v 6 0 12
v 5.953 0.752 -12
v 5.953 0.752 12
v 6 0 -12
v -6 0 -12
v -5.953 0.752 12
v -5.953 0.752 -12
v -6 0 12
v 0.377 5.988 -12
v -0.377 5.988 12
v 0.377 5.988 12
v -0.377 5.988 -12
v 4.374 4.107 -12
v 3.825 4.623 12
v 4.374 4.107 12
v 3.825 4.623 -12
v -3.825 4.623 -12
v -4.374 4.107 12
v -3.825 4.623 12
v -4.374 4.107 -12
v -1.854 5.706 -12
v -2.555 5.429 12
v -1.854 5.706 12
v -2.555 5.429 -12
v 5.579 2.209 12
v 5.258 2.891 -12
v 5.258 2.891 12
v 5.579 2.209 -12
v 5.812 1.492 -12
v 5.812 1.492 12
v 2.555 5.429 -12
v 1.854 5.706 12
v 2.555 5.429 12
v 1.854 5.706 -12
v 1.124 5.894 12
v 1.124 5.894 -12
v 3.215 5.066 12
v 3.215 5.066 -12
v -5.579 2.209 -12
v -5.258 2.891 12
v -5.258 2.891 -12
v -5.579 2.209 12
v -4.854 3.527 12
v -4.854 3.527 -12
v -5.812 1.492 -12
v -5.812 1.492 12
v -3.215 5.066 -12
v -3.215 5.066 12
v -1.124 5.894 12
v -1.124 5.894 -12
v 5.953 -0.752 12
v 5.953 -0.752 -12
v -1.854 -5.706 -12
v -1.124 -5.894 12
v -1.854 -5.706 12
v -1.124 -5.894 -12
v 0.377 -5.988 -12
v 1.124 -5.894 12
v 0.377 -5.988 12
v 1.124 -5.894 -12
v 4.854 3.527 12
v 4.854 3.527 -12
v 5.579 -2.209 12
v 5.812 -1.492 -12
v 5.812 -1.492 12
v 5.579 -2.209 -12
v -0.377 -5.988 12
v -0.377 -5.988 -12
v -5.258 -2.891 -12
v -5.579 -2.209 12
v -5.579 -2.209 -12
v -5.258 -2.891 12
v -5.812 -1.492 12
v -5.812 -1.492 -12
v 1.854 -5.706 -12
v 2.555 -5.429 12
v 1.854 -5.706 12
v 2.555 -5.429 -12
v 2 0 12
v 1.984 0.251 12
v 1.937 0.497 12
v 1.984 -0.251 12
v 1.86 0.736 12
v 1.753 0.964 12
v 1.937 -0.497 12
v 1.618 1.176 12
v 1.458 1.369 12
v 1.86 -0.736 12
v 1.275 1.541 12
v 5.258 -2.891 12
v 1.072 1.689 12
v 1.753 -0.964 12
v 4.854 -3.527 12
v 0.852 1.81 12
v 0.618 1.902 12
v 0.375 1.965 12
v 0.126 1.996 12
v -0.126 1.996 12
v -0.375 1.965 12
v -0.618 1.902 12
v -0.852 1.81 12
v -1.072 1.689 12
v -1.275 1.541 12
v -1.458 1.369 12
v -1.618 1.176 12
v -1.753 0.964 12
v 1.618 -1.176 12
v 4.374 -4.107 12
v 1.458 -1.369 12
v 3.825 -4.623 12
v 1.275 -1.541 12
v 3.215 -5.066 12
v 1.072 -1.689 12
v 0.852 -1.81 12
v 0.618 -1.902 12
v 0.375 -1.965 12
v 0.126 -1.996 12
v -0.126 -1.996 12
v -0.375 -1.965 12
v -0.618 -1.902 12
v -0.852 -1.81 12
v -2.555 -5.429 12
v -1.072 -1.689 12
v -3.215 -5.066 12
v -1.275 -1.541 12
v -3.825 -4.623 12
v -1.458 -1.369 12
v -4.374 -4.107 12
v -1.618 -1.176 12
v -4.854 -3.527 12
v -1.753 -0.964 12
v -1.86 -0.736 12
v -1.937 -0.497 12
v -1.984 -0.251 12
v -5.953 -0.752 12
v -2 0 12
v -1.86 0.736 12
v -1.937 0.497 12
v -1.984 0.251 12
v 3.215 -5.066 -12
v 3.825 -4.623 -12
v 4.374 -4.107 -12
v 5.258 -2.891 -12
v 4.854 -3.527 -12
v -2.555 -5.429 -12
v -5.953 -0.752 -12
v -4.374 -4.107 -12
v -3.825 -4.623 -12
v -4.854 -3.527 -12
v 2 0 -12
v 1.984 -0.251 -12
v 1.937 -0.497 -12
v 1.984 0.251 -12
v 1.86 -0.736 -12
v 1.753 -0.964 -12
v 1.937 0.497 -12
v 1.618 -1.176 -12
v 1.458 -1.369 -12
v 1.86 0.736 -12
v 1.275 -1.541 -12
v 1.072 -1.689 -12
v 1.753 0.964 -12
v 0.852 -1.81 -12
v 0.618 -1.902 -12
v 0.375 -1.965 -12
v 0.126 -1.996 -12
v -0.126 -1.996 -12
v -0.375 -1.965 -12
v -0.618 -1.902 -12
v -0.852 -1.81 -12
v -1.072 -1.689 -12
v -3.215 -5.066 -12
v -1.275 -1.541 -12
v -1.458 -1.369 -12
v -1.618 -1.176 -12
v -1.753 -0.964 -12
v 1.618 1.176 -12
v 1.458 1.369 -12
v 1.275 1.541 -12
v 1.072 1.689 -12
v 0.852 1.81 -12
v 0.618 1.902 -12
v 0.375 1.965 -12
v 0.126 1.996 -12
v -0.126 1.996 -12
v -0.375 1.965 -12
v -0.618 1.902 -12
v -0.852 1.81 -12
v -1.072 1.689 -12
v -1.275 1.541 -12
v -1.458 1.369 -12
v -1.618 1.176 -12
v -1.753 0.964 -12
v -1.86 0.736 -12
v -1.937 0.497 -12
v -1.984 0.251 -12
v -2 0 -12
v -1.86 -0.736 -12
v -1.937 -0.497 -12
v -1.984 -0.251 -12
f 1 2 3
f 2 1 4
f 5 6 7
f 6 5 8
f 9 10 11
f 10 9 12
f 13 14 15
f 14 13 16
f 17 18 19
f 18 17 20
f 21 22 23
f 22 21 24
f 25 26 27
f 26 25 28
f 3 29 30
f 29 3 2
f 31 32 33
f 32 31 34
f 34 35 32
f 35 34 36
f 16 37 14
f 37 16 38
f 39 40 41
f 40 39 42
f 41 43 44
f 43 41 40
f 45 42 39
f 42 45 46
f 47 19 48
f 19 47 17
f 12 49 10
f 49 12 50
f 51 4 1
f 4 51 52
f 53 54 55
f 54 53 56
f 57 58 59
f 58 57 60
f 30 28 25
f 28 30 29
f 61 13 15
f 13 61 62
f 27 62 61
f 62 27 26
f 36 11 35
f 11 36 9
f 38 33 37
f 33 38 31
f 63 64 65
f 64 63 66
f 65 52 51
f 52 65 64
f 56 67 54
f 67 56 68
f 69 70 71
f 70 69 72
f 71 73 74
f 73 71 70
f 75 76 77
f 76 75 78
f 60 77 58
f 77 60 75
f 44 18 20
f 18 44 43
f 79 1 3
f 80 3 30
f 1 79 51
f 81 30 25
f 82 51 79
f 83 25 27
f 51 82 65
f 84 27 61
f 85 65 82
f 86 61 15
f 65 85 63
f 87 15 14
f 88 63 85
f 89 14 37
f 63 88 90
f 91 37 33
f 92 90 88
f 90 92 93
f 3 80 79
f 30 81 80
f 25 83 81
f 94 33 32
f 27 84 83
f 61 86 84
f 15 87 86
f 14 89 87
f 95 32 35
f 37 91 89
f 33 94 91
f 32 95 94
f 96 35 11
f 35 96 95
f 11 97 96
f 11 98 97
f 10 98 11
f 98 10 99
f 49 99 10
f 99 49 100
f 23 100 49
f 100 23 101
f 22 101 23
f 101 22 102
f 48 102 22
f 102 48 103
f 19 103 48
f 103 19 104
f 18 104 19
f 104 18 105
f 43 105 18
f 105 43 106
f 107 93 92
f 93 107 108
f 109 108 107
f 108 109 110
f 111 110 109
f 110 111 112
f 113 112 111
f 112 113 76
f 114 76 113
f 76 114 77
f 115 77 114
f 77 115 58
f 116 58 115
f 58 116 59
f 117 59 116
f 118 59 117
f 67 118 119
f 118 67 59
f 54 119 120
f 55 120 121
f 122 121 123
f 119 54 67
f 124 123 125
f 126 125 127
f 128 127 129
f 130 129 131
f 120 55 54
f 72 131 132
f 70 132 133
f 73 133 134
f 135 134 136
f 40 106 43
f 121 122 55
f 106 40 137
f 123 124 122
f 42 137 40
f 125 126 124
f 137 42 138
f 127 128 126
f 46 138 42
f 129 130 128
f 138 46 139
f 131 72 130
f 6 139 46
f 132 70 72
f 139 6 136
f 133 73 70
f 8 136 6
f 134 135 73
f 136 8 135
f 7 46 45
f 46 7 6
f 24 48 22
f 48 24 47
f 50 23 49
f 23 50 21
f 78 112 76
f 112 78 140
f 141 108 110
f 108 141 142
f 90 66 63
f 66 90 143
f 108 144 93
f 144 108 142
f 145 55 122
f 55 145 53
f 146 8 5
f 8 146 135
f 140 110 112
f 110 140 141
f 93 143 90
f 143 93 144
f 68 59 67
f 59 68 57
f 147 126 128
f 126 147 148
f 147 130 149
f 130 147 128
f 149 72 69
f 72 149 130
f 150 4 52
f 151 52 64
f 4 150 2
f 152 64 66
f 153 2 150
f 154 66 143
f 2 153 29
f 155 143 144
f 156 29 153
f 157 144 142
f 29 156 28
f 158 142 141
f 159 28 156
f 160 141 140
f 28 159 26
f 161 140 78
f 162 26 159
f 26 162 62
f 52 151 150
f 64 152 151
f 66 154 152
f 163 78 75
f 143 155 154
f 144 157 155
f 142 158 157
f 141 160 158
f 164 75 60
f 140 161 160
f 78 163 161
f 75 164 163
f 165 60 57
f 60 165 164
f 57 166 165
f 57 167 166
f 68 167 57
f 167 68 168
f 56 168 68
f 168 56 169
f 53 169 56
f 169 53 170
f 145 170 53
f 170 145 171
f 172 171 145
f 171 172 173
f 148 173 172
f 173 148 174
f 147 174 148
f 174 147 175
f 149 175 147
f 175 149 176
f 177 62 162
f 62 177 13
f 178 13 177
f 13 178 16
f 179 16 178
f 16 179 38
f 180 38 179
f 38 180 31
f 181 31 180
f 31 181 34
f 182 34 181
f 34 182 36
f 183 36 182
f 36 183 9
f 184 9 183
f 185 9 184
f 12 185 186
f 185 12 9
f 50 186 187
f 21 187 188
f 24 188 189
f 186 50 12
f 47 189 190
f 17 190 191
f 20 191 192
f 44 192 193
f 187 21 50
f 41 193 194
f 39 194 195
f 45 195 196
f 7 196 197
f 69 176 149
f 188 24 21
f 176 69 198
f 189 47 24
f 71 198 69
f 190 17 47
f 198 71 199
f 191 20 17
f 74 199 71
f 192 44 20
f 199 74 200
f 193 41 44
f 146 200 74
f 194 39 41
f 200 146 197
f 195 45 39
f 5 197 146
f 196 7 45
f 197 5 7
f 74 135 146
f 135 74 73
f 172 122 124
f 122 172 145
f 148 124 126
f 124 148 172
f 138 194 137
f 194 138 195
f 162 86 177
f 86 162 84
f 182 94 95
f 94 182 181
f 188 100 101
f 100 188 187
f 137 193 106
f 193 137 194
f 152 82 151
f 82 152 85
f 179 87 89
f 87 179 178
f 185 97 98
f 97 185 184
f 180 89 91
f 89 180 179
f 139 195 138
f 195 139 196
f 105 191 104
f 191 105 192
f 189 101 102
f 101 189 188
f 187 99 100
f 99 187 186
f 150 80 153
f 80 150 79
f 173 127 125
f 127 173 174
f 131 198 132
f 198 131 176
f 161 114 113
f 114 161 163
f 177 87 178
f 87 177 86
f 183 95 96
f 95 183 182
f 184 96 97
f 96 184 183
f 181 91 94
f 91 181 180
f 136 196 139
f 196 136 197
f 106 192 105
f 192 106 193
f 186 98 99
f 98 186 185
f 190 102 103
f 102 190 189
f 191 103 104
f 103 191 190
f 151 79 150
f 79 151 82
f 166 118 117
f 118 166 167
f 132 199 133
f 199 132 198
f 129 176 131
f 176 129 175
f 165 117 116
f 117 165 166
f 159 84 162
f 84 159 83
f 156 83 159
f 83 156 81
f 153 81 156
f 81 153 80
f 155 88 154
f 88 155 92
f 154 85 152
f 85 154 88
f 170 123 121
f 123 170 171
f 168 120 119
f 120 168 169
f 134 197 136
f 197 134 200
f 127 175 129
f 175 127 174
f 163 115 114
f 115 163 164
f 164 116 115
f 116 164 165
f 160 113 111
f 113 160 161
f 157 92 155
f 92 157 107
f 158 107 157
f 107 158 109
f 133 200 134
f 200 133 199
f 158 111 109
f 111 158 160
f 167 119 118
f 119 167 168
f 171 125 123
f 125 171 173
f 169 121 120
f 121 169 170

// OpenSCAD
$fn = 50;


difference() {
	union() {
		translate(v = [0, 0, -12.0000000000]) {
			cylinder(h = 24, r = 6.0000000000);
		}
	}
	union() {
		translate(v = [0, 0, -100.0000000000]) {
			cylinder(h = 200, r = 2.0000000000);
		}
	}
}
